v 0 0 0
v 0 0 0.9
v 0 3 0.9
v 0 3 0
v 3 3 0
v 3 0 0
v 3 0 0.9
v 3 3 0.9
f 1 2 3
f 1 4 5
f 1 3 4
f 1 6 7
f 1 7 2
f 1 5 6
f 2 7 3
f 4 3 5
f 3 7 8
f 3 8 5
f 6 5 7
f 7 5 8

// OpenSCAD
/* Warning, this is a very basic generator with a lot of approximation 
input data : [VDFN, NMX, 3x3x0.9mm, 8, , C, C04-00524C]
generated by com.zoubworld.electronics.cad.model3d.Basic
Date : Sun Feb 15 10:50:48 CET 2026
*/

//body
color("black")
translate([0,0,0])
cube([3.0,3.0,0.9], center=false);
